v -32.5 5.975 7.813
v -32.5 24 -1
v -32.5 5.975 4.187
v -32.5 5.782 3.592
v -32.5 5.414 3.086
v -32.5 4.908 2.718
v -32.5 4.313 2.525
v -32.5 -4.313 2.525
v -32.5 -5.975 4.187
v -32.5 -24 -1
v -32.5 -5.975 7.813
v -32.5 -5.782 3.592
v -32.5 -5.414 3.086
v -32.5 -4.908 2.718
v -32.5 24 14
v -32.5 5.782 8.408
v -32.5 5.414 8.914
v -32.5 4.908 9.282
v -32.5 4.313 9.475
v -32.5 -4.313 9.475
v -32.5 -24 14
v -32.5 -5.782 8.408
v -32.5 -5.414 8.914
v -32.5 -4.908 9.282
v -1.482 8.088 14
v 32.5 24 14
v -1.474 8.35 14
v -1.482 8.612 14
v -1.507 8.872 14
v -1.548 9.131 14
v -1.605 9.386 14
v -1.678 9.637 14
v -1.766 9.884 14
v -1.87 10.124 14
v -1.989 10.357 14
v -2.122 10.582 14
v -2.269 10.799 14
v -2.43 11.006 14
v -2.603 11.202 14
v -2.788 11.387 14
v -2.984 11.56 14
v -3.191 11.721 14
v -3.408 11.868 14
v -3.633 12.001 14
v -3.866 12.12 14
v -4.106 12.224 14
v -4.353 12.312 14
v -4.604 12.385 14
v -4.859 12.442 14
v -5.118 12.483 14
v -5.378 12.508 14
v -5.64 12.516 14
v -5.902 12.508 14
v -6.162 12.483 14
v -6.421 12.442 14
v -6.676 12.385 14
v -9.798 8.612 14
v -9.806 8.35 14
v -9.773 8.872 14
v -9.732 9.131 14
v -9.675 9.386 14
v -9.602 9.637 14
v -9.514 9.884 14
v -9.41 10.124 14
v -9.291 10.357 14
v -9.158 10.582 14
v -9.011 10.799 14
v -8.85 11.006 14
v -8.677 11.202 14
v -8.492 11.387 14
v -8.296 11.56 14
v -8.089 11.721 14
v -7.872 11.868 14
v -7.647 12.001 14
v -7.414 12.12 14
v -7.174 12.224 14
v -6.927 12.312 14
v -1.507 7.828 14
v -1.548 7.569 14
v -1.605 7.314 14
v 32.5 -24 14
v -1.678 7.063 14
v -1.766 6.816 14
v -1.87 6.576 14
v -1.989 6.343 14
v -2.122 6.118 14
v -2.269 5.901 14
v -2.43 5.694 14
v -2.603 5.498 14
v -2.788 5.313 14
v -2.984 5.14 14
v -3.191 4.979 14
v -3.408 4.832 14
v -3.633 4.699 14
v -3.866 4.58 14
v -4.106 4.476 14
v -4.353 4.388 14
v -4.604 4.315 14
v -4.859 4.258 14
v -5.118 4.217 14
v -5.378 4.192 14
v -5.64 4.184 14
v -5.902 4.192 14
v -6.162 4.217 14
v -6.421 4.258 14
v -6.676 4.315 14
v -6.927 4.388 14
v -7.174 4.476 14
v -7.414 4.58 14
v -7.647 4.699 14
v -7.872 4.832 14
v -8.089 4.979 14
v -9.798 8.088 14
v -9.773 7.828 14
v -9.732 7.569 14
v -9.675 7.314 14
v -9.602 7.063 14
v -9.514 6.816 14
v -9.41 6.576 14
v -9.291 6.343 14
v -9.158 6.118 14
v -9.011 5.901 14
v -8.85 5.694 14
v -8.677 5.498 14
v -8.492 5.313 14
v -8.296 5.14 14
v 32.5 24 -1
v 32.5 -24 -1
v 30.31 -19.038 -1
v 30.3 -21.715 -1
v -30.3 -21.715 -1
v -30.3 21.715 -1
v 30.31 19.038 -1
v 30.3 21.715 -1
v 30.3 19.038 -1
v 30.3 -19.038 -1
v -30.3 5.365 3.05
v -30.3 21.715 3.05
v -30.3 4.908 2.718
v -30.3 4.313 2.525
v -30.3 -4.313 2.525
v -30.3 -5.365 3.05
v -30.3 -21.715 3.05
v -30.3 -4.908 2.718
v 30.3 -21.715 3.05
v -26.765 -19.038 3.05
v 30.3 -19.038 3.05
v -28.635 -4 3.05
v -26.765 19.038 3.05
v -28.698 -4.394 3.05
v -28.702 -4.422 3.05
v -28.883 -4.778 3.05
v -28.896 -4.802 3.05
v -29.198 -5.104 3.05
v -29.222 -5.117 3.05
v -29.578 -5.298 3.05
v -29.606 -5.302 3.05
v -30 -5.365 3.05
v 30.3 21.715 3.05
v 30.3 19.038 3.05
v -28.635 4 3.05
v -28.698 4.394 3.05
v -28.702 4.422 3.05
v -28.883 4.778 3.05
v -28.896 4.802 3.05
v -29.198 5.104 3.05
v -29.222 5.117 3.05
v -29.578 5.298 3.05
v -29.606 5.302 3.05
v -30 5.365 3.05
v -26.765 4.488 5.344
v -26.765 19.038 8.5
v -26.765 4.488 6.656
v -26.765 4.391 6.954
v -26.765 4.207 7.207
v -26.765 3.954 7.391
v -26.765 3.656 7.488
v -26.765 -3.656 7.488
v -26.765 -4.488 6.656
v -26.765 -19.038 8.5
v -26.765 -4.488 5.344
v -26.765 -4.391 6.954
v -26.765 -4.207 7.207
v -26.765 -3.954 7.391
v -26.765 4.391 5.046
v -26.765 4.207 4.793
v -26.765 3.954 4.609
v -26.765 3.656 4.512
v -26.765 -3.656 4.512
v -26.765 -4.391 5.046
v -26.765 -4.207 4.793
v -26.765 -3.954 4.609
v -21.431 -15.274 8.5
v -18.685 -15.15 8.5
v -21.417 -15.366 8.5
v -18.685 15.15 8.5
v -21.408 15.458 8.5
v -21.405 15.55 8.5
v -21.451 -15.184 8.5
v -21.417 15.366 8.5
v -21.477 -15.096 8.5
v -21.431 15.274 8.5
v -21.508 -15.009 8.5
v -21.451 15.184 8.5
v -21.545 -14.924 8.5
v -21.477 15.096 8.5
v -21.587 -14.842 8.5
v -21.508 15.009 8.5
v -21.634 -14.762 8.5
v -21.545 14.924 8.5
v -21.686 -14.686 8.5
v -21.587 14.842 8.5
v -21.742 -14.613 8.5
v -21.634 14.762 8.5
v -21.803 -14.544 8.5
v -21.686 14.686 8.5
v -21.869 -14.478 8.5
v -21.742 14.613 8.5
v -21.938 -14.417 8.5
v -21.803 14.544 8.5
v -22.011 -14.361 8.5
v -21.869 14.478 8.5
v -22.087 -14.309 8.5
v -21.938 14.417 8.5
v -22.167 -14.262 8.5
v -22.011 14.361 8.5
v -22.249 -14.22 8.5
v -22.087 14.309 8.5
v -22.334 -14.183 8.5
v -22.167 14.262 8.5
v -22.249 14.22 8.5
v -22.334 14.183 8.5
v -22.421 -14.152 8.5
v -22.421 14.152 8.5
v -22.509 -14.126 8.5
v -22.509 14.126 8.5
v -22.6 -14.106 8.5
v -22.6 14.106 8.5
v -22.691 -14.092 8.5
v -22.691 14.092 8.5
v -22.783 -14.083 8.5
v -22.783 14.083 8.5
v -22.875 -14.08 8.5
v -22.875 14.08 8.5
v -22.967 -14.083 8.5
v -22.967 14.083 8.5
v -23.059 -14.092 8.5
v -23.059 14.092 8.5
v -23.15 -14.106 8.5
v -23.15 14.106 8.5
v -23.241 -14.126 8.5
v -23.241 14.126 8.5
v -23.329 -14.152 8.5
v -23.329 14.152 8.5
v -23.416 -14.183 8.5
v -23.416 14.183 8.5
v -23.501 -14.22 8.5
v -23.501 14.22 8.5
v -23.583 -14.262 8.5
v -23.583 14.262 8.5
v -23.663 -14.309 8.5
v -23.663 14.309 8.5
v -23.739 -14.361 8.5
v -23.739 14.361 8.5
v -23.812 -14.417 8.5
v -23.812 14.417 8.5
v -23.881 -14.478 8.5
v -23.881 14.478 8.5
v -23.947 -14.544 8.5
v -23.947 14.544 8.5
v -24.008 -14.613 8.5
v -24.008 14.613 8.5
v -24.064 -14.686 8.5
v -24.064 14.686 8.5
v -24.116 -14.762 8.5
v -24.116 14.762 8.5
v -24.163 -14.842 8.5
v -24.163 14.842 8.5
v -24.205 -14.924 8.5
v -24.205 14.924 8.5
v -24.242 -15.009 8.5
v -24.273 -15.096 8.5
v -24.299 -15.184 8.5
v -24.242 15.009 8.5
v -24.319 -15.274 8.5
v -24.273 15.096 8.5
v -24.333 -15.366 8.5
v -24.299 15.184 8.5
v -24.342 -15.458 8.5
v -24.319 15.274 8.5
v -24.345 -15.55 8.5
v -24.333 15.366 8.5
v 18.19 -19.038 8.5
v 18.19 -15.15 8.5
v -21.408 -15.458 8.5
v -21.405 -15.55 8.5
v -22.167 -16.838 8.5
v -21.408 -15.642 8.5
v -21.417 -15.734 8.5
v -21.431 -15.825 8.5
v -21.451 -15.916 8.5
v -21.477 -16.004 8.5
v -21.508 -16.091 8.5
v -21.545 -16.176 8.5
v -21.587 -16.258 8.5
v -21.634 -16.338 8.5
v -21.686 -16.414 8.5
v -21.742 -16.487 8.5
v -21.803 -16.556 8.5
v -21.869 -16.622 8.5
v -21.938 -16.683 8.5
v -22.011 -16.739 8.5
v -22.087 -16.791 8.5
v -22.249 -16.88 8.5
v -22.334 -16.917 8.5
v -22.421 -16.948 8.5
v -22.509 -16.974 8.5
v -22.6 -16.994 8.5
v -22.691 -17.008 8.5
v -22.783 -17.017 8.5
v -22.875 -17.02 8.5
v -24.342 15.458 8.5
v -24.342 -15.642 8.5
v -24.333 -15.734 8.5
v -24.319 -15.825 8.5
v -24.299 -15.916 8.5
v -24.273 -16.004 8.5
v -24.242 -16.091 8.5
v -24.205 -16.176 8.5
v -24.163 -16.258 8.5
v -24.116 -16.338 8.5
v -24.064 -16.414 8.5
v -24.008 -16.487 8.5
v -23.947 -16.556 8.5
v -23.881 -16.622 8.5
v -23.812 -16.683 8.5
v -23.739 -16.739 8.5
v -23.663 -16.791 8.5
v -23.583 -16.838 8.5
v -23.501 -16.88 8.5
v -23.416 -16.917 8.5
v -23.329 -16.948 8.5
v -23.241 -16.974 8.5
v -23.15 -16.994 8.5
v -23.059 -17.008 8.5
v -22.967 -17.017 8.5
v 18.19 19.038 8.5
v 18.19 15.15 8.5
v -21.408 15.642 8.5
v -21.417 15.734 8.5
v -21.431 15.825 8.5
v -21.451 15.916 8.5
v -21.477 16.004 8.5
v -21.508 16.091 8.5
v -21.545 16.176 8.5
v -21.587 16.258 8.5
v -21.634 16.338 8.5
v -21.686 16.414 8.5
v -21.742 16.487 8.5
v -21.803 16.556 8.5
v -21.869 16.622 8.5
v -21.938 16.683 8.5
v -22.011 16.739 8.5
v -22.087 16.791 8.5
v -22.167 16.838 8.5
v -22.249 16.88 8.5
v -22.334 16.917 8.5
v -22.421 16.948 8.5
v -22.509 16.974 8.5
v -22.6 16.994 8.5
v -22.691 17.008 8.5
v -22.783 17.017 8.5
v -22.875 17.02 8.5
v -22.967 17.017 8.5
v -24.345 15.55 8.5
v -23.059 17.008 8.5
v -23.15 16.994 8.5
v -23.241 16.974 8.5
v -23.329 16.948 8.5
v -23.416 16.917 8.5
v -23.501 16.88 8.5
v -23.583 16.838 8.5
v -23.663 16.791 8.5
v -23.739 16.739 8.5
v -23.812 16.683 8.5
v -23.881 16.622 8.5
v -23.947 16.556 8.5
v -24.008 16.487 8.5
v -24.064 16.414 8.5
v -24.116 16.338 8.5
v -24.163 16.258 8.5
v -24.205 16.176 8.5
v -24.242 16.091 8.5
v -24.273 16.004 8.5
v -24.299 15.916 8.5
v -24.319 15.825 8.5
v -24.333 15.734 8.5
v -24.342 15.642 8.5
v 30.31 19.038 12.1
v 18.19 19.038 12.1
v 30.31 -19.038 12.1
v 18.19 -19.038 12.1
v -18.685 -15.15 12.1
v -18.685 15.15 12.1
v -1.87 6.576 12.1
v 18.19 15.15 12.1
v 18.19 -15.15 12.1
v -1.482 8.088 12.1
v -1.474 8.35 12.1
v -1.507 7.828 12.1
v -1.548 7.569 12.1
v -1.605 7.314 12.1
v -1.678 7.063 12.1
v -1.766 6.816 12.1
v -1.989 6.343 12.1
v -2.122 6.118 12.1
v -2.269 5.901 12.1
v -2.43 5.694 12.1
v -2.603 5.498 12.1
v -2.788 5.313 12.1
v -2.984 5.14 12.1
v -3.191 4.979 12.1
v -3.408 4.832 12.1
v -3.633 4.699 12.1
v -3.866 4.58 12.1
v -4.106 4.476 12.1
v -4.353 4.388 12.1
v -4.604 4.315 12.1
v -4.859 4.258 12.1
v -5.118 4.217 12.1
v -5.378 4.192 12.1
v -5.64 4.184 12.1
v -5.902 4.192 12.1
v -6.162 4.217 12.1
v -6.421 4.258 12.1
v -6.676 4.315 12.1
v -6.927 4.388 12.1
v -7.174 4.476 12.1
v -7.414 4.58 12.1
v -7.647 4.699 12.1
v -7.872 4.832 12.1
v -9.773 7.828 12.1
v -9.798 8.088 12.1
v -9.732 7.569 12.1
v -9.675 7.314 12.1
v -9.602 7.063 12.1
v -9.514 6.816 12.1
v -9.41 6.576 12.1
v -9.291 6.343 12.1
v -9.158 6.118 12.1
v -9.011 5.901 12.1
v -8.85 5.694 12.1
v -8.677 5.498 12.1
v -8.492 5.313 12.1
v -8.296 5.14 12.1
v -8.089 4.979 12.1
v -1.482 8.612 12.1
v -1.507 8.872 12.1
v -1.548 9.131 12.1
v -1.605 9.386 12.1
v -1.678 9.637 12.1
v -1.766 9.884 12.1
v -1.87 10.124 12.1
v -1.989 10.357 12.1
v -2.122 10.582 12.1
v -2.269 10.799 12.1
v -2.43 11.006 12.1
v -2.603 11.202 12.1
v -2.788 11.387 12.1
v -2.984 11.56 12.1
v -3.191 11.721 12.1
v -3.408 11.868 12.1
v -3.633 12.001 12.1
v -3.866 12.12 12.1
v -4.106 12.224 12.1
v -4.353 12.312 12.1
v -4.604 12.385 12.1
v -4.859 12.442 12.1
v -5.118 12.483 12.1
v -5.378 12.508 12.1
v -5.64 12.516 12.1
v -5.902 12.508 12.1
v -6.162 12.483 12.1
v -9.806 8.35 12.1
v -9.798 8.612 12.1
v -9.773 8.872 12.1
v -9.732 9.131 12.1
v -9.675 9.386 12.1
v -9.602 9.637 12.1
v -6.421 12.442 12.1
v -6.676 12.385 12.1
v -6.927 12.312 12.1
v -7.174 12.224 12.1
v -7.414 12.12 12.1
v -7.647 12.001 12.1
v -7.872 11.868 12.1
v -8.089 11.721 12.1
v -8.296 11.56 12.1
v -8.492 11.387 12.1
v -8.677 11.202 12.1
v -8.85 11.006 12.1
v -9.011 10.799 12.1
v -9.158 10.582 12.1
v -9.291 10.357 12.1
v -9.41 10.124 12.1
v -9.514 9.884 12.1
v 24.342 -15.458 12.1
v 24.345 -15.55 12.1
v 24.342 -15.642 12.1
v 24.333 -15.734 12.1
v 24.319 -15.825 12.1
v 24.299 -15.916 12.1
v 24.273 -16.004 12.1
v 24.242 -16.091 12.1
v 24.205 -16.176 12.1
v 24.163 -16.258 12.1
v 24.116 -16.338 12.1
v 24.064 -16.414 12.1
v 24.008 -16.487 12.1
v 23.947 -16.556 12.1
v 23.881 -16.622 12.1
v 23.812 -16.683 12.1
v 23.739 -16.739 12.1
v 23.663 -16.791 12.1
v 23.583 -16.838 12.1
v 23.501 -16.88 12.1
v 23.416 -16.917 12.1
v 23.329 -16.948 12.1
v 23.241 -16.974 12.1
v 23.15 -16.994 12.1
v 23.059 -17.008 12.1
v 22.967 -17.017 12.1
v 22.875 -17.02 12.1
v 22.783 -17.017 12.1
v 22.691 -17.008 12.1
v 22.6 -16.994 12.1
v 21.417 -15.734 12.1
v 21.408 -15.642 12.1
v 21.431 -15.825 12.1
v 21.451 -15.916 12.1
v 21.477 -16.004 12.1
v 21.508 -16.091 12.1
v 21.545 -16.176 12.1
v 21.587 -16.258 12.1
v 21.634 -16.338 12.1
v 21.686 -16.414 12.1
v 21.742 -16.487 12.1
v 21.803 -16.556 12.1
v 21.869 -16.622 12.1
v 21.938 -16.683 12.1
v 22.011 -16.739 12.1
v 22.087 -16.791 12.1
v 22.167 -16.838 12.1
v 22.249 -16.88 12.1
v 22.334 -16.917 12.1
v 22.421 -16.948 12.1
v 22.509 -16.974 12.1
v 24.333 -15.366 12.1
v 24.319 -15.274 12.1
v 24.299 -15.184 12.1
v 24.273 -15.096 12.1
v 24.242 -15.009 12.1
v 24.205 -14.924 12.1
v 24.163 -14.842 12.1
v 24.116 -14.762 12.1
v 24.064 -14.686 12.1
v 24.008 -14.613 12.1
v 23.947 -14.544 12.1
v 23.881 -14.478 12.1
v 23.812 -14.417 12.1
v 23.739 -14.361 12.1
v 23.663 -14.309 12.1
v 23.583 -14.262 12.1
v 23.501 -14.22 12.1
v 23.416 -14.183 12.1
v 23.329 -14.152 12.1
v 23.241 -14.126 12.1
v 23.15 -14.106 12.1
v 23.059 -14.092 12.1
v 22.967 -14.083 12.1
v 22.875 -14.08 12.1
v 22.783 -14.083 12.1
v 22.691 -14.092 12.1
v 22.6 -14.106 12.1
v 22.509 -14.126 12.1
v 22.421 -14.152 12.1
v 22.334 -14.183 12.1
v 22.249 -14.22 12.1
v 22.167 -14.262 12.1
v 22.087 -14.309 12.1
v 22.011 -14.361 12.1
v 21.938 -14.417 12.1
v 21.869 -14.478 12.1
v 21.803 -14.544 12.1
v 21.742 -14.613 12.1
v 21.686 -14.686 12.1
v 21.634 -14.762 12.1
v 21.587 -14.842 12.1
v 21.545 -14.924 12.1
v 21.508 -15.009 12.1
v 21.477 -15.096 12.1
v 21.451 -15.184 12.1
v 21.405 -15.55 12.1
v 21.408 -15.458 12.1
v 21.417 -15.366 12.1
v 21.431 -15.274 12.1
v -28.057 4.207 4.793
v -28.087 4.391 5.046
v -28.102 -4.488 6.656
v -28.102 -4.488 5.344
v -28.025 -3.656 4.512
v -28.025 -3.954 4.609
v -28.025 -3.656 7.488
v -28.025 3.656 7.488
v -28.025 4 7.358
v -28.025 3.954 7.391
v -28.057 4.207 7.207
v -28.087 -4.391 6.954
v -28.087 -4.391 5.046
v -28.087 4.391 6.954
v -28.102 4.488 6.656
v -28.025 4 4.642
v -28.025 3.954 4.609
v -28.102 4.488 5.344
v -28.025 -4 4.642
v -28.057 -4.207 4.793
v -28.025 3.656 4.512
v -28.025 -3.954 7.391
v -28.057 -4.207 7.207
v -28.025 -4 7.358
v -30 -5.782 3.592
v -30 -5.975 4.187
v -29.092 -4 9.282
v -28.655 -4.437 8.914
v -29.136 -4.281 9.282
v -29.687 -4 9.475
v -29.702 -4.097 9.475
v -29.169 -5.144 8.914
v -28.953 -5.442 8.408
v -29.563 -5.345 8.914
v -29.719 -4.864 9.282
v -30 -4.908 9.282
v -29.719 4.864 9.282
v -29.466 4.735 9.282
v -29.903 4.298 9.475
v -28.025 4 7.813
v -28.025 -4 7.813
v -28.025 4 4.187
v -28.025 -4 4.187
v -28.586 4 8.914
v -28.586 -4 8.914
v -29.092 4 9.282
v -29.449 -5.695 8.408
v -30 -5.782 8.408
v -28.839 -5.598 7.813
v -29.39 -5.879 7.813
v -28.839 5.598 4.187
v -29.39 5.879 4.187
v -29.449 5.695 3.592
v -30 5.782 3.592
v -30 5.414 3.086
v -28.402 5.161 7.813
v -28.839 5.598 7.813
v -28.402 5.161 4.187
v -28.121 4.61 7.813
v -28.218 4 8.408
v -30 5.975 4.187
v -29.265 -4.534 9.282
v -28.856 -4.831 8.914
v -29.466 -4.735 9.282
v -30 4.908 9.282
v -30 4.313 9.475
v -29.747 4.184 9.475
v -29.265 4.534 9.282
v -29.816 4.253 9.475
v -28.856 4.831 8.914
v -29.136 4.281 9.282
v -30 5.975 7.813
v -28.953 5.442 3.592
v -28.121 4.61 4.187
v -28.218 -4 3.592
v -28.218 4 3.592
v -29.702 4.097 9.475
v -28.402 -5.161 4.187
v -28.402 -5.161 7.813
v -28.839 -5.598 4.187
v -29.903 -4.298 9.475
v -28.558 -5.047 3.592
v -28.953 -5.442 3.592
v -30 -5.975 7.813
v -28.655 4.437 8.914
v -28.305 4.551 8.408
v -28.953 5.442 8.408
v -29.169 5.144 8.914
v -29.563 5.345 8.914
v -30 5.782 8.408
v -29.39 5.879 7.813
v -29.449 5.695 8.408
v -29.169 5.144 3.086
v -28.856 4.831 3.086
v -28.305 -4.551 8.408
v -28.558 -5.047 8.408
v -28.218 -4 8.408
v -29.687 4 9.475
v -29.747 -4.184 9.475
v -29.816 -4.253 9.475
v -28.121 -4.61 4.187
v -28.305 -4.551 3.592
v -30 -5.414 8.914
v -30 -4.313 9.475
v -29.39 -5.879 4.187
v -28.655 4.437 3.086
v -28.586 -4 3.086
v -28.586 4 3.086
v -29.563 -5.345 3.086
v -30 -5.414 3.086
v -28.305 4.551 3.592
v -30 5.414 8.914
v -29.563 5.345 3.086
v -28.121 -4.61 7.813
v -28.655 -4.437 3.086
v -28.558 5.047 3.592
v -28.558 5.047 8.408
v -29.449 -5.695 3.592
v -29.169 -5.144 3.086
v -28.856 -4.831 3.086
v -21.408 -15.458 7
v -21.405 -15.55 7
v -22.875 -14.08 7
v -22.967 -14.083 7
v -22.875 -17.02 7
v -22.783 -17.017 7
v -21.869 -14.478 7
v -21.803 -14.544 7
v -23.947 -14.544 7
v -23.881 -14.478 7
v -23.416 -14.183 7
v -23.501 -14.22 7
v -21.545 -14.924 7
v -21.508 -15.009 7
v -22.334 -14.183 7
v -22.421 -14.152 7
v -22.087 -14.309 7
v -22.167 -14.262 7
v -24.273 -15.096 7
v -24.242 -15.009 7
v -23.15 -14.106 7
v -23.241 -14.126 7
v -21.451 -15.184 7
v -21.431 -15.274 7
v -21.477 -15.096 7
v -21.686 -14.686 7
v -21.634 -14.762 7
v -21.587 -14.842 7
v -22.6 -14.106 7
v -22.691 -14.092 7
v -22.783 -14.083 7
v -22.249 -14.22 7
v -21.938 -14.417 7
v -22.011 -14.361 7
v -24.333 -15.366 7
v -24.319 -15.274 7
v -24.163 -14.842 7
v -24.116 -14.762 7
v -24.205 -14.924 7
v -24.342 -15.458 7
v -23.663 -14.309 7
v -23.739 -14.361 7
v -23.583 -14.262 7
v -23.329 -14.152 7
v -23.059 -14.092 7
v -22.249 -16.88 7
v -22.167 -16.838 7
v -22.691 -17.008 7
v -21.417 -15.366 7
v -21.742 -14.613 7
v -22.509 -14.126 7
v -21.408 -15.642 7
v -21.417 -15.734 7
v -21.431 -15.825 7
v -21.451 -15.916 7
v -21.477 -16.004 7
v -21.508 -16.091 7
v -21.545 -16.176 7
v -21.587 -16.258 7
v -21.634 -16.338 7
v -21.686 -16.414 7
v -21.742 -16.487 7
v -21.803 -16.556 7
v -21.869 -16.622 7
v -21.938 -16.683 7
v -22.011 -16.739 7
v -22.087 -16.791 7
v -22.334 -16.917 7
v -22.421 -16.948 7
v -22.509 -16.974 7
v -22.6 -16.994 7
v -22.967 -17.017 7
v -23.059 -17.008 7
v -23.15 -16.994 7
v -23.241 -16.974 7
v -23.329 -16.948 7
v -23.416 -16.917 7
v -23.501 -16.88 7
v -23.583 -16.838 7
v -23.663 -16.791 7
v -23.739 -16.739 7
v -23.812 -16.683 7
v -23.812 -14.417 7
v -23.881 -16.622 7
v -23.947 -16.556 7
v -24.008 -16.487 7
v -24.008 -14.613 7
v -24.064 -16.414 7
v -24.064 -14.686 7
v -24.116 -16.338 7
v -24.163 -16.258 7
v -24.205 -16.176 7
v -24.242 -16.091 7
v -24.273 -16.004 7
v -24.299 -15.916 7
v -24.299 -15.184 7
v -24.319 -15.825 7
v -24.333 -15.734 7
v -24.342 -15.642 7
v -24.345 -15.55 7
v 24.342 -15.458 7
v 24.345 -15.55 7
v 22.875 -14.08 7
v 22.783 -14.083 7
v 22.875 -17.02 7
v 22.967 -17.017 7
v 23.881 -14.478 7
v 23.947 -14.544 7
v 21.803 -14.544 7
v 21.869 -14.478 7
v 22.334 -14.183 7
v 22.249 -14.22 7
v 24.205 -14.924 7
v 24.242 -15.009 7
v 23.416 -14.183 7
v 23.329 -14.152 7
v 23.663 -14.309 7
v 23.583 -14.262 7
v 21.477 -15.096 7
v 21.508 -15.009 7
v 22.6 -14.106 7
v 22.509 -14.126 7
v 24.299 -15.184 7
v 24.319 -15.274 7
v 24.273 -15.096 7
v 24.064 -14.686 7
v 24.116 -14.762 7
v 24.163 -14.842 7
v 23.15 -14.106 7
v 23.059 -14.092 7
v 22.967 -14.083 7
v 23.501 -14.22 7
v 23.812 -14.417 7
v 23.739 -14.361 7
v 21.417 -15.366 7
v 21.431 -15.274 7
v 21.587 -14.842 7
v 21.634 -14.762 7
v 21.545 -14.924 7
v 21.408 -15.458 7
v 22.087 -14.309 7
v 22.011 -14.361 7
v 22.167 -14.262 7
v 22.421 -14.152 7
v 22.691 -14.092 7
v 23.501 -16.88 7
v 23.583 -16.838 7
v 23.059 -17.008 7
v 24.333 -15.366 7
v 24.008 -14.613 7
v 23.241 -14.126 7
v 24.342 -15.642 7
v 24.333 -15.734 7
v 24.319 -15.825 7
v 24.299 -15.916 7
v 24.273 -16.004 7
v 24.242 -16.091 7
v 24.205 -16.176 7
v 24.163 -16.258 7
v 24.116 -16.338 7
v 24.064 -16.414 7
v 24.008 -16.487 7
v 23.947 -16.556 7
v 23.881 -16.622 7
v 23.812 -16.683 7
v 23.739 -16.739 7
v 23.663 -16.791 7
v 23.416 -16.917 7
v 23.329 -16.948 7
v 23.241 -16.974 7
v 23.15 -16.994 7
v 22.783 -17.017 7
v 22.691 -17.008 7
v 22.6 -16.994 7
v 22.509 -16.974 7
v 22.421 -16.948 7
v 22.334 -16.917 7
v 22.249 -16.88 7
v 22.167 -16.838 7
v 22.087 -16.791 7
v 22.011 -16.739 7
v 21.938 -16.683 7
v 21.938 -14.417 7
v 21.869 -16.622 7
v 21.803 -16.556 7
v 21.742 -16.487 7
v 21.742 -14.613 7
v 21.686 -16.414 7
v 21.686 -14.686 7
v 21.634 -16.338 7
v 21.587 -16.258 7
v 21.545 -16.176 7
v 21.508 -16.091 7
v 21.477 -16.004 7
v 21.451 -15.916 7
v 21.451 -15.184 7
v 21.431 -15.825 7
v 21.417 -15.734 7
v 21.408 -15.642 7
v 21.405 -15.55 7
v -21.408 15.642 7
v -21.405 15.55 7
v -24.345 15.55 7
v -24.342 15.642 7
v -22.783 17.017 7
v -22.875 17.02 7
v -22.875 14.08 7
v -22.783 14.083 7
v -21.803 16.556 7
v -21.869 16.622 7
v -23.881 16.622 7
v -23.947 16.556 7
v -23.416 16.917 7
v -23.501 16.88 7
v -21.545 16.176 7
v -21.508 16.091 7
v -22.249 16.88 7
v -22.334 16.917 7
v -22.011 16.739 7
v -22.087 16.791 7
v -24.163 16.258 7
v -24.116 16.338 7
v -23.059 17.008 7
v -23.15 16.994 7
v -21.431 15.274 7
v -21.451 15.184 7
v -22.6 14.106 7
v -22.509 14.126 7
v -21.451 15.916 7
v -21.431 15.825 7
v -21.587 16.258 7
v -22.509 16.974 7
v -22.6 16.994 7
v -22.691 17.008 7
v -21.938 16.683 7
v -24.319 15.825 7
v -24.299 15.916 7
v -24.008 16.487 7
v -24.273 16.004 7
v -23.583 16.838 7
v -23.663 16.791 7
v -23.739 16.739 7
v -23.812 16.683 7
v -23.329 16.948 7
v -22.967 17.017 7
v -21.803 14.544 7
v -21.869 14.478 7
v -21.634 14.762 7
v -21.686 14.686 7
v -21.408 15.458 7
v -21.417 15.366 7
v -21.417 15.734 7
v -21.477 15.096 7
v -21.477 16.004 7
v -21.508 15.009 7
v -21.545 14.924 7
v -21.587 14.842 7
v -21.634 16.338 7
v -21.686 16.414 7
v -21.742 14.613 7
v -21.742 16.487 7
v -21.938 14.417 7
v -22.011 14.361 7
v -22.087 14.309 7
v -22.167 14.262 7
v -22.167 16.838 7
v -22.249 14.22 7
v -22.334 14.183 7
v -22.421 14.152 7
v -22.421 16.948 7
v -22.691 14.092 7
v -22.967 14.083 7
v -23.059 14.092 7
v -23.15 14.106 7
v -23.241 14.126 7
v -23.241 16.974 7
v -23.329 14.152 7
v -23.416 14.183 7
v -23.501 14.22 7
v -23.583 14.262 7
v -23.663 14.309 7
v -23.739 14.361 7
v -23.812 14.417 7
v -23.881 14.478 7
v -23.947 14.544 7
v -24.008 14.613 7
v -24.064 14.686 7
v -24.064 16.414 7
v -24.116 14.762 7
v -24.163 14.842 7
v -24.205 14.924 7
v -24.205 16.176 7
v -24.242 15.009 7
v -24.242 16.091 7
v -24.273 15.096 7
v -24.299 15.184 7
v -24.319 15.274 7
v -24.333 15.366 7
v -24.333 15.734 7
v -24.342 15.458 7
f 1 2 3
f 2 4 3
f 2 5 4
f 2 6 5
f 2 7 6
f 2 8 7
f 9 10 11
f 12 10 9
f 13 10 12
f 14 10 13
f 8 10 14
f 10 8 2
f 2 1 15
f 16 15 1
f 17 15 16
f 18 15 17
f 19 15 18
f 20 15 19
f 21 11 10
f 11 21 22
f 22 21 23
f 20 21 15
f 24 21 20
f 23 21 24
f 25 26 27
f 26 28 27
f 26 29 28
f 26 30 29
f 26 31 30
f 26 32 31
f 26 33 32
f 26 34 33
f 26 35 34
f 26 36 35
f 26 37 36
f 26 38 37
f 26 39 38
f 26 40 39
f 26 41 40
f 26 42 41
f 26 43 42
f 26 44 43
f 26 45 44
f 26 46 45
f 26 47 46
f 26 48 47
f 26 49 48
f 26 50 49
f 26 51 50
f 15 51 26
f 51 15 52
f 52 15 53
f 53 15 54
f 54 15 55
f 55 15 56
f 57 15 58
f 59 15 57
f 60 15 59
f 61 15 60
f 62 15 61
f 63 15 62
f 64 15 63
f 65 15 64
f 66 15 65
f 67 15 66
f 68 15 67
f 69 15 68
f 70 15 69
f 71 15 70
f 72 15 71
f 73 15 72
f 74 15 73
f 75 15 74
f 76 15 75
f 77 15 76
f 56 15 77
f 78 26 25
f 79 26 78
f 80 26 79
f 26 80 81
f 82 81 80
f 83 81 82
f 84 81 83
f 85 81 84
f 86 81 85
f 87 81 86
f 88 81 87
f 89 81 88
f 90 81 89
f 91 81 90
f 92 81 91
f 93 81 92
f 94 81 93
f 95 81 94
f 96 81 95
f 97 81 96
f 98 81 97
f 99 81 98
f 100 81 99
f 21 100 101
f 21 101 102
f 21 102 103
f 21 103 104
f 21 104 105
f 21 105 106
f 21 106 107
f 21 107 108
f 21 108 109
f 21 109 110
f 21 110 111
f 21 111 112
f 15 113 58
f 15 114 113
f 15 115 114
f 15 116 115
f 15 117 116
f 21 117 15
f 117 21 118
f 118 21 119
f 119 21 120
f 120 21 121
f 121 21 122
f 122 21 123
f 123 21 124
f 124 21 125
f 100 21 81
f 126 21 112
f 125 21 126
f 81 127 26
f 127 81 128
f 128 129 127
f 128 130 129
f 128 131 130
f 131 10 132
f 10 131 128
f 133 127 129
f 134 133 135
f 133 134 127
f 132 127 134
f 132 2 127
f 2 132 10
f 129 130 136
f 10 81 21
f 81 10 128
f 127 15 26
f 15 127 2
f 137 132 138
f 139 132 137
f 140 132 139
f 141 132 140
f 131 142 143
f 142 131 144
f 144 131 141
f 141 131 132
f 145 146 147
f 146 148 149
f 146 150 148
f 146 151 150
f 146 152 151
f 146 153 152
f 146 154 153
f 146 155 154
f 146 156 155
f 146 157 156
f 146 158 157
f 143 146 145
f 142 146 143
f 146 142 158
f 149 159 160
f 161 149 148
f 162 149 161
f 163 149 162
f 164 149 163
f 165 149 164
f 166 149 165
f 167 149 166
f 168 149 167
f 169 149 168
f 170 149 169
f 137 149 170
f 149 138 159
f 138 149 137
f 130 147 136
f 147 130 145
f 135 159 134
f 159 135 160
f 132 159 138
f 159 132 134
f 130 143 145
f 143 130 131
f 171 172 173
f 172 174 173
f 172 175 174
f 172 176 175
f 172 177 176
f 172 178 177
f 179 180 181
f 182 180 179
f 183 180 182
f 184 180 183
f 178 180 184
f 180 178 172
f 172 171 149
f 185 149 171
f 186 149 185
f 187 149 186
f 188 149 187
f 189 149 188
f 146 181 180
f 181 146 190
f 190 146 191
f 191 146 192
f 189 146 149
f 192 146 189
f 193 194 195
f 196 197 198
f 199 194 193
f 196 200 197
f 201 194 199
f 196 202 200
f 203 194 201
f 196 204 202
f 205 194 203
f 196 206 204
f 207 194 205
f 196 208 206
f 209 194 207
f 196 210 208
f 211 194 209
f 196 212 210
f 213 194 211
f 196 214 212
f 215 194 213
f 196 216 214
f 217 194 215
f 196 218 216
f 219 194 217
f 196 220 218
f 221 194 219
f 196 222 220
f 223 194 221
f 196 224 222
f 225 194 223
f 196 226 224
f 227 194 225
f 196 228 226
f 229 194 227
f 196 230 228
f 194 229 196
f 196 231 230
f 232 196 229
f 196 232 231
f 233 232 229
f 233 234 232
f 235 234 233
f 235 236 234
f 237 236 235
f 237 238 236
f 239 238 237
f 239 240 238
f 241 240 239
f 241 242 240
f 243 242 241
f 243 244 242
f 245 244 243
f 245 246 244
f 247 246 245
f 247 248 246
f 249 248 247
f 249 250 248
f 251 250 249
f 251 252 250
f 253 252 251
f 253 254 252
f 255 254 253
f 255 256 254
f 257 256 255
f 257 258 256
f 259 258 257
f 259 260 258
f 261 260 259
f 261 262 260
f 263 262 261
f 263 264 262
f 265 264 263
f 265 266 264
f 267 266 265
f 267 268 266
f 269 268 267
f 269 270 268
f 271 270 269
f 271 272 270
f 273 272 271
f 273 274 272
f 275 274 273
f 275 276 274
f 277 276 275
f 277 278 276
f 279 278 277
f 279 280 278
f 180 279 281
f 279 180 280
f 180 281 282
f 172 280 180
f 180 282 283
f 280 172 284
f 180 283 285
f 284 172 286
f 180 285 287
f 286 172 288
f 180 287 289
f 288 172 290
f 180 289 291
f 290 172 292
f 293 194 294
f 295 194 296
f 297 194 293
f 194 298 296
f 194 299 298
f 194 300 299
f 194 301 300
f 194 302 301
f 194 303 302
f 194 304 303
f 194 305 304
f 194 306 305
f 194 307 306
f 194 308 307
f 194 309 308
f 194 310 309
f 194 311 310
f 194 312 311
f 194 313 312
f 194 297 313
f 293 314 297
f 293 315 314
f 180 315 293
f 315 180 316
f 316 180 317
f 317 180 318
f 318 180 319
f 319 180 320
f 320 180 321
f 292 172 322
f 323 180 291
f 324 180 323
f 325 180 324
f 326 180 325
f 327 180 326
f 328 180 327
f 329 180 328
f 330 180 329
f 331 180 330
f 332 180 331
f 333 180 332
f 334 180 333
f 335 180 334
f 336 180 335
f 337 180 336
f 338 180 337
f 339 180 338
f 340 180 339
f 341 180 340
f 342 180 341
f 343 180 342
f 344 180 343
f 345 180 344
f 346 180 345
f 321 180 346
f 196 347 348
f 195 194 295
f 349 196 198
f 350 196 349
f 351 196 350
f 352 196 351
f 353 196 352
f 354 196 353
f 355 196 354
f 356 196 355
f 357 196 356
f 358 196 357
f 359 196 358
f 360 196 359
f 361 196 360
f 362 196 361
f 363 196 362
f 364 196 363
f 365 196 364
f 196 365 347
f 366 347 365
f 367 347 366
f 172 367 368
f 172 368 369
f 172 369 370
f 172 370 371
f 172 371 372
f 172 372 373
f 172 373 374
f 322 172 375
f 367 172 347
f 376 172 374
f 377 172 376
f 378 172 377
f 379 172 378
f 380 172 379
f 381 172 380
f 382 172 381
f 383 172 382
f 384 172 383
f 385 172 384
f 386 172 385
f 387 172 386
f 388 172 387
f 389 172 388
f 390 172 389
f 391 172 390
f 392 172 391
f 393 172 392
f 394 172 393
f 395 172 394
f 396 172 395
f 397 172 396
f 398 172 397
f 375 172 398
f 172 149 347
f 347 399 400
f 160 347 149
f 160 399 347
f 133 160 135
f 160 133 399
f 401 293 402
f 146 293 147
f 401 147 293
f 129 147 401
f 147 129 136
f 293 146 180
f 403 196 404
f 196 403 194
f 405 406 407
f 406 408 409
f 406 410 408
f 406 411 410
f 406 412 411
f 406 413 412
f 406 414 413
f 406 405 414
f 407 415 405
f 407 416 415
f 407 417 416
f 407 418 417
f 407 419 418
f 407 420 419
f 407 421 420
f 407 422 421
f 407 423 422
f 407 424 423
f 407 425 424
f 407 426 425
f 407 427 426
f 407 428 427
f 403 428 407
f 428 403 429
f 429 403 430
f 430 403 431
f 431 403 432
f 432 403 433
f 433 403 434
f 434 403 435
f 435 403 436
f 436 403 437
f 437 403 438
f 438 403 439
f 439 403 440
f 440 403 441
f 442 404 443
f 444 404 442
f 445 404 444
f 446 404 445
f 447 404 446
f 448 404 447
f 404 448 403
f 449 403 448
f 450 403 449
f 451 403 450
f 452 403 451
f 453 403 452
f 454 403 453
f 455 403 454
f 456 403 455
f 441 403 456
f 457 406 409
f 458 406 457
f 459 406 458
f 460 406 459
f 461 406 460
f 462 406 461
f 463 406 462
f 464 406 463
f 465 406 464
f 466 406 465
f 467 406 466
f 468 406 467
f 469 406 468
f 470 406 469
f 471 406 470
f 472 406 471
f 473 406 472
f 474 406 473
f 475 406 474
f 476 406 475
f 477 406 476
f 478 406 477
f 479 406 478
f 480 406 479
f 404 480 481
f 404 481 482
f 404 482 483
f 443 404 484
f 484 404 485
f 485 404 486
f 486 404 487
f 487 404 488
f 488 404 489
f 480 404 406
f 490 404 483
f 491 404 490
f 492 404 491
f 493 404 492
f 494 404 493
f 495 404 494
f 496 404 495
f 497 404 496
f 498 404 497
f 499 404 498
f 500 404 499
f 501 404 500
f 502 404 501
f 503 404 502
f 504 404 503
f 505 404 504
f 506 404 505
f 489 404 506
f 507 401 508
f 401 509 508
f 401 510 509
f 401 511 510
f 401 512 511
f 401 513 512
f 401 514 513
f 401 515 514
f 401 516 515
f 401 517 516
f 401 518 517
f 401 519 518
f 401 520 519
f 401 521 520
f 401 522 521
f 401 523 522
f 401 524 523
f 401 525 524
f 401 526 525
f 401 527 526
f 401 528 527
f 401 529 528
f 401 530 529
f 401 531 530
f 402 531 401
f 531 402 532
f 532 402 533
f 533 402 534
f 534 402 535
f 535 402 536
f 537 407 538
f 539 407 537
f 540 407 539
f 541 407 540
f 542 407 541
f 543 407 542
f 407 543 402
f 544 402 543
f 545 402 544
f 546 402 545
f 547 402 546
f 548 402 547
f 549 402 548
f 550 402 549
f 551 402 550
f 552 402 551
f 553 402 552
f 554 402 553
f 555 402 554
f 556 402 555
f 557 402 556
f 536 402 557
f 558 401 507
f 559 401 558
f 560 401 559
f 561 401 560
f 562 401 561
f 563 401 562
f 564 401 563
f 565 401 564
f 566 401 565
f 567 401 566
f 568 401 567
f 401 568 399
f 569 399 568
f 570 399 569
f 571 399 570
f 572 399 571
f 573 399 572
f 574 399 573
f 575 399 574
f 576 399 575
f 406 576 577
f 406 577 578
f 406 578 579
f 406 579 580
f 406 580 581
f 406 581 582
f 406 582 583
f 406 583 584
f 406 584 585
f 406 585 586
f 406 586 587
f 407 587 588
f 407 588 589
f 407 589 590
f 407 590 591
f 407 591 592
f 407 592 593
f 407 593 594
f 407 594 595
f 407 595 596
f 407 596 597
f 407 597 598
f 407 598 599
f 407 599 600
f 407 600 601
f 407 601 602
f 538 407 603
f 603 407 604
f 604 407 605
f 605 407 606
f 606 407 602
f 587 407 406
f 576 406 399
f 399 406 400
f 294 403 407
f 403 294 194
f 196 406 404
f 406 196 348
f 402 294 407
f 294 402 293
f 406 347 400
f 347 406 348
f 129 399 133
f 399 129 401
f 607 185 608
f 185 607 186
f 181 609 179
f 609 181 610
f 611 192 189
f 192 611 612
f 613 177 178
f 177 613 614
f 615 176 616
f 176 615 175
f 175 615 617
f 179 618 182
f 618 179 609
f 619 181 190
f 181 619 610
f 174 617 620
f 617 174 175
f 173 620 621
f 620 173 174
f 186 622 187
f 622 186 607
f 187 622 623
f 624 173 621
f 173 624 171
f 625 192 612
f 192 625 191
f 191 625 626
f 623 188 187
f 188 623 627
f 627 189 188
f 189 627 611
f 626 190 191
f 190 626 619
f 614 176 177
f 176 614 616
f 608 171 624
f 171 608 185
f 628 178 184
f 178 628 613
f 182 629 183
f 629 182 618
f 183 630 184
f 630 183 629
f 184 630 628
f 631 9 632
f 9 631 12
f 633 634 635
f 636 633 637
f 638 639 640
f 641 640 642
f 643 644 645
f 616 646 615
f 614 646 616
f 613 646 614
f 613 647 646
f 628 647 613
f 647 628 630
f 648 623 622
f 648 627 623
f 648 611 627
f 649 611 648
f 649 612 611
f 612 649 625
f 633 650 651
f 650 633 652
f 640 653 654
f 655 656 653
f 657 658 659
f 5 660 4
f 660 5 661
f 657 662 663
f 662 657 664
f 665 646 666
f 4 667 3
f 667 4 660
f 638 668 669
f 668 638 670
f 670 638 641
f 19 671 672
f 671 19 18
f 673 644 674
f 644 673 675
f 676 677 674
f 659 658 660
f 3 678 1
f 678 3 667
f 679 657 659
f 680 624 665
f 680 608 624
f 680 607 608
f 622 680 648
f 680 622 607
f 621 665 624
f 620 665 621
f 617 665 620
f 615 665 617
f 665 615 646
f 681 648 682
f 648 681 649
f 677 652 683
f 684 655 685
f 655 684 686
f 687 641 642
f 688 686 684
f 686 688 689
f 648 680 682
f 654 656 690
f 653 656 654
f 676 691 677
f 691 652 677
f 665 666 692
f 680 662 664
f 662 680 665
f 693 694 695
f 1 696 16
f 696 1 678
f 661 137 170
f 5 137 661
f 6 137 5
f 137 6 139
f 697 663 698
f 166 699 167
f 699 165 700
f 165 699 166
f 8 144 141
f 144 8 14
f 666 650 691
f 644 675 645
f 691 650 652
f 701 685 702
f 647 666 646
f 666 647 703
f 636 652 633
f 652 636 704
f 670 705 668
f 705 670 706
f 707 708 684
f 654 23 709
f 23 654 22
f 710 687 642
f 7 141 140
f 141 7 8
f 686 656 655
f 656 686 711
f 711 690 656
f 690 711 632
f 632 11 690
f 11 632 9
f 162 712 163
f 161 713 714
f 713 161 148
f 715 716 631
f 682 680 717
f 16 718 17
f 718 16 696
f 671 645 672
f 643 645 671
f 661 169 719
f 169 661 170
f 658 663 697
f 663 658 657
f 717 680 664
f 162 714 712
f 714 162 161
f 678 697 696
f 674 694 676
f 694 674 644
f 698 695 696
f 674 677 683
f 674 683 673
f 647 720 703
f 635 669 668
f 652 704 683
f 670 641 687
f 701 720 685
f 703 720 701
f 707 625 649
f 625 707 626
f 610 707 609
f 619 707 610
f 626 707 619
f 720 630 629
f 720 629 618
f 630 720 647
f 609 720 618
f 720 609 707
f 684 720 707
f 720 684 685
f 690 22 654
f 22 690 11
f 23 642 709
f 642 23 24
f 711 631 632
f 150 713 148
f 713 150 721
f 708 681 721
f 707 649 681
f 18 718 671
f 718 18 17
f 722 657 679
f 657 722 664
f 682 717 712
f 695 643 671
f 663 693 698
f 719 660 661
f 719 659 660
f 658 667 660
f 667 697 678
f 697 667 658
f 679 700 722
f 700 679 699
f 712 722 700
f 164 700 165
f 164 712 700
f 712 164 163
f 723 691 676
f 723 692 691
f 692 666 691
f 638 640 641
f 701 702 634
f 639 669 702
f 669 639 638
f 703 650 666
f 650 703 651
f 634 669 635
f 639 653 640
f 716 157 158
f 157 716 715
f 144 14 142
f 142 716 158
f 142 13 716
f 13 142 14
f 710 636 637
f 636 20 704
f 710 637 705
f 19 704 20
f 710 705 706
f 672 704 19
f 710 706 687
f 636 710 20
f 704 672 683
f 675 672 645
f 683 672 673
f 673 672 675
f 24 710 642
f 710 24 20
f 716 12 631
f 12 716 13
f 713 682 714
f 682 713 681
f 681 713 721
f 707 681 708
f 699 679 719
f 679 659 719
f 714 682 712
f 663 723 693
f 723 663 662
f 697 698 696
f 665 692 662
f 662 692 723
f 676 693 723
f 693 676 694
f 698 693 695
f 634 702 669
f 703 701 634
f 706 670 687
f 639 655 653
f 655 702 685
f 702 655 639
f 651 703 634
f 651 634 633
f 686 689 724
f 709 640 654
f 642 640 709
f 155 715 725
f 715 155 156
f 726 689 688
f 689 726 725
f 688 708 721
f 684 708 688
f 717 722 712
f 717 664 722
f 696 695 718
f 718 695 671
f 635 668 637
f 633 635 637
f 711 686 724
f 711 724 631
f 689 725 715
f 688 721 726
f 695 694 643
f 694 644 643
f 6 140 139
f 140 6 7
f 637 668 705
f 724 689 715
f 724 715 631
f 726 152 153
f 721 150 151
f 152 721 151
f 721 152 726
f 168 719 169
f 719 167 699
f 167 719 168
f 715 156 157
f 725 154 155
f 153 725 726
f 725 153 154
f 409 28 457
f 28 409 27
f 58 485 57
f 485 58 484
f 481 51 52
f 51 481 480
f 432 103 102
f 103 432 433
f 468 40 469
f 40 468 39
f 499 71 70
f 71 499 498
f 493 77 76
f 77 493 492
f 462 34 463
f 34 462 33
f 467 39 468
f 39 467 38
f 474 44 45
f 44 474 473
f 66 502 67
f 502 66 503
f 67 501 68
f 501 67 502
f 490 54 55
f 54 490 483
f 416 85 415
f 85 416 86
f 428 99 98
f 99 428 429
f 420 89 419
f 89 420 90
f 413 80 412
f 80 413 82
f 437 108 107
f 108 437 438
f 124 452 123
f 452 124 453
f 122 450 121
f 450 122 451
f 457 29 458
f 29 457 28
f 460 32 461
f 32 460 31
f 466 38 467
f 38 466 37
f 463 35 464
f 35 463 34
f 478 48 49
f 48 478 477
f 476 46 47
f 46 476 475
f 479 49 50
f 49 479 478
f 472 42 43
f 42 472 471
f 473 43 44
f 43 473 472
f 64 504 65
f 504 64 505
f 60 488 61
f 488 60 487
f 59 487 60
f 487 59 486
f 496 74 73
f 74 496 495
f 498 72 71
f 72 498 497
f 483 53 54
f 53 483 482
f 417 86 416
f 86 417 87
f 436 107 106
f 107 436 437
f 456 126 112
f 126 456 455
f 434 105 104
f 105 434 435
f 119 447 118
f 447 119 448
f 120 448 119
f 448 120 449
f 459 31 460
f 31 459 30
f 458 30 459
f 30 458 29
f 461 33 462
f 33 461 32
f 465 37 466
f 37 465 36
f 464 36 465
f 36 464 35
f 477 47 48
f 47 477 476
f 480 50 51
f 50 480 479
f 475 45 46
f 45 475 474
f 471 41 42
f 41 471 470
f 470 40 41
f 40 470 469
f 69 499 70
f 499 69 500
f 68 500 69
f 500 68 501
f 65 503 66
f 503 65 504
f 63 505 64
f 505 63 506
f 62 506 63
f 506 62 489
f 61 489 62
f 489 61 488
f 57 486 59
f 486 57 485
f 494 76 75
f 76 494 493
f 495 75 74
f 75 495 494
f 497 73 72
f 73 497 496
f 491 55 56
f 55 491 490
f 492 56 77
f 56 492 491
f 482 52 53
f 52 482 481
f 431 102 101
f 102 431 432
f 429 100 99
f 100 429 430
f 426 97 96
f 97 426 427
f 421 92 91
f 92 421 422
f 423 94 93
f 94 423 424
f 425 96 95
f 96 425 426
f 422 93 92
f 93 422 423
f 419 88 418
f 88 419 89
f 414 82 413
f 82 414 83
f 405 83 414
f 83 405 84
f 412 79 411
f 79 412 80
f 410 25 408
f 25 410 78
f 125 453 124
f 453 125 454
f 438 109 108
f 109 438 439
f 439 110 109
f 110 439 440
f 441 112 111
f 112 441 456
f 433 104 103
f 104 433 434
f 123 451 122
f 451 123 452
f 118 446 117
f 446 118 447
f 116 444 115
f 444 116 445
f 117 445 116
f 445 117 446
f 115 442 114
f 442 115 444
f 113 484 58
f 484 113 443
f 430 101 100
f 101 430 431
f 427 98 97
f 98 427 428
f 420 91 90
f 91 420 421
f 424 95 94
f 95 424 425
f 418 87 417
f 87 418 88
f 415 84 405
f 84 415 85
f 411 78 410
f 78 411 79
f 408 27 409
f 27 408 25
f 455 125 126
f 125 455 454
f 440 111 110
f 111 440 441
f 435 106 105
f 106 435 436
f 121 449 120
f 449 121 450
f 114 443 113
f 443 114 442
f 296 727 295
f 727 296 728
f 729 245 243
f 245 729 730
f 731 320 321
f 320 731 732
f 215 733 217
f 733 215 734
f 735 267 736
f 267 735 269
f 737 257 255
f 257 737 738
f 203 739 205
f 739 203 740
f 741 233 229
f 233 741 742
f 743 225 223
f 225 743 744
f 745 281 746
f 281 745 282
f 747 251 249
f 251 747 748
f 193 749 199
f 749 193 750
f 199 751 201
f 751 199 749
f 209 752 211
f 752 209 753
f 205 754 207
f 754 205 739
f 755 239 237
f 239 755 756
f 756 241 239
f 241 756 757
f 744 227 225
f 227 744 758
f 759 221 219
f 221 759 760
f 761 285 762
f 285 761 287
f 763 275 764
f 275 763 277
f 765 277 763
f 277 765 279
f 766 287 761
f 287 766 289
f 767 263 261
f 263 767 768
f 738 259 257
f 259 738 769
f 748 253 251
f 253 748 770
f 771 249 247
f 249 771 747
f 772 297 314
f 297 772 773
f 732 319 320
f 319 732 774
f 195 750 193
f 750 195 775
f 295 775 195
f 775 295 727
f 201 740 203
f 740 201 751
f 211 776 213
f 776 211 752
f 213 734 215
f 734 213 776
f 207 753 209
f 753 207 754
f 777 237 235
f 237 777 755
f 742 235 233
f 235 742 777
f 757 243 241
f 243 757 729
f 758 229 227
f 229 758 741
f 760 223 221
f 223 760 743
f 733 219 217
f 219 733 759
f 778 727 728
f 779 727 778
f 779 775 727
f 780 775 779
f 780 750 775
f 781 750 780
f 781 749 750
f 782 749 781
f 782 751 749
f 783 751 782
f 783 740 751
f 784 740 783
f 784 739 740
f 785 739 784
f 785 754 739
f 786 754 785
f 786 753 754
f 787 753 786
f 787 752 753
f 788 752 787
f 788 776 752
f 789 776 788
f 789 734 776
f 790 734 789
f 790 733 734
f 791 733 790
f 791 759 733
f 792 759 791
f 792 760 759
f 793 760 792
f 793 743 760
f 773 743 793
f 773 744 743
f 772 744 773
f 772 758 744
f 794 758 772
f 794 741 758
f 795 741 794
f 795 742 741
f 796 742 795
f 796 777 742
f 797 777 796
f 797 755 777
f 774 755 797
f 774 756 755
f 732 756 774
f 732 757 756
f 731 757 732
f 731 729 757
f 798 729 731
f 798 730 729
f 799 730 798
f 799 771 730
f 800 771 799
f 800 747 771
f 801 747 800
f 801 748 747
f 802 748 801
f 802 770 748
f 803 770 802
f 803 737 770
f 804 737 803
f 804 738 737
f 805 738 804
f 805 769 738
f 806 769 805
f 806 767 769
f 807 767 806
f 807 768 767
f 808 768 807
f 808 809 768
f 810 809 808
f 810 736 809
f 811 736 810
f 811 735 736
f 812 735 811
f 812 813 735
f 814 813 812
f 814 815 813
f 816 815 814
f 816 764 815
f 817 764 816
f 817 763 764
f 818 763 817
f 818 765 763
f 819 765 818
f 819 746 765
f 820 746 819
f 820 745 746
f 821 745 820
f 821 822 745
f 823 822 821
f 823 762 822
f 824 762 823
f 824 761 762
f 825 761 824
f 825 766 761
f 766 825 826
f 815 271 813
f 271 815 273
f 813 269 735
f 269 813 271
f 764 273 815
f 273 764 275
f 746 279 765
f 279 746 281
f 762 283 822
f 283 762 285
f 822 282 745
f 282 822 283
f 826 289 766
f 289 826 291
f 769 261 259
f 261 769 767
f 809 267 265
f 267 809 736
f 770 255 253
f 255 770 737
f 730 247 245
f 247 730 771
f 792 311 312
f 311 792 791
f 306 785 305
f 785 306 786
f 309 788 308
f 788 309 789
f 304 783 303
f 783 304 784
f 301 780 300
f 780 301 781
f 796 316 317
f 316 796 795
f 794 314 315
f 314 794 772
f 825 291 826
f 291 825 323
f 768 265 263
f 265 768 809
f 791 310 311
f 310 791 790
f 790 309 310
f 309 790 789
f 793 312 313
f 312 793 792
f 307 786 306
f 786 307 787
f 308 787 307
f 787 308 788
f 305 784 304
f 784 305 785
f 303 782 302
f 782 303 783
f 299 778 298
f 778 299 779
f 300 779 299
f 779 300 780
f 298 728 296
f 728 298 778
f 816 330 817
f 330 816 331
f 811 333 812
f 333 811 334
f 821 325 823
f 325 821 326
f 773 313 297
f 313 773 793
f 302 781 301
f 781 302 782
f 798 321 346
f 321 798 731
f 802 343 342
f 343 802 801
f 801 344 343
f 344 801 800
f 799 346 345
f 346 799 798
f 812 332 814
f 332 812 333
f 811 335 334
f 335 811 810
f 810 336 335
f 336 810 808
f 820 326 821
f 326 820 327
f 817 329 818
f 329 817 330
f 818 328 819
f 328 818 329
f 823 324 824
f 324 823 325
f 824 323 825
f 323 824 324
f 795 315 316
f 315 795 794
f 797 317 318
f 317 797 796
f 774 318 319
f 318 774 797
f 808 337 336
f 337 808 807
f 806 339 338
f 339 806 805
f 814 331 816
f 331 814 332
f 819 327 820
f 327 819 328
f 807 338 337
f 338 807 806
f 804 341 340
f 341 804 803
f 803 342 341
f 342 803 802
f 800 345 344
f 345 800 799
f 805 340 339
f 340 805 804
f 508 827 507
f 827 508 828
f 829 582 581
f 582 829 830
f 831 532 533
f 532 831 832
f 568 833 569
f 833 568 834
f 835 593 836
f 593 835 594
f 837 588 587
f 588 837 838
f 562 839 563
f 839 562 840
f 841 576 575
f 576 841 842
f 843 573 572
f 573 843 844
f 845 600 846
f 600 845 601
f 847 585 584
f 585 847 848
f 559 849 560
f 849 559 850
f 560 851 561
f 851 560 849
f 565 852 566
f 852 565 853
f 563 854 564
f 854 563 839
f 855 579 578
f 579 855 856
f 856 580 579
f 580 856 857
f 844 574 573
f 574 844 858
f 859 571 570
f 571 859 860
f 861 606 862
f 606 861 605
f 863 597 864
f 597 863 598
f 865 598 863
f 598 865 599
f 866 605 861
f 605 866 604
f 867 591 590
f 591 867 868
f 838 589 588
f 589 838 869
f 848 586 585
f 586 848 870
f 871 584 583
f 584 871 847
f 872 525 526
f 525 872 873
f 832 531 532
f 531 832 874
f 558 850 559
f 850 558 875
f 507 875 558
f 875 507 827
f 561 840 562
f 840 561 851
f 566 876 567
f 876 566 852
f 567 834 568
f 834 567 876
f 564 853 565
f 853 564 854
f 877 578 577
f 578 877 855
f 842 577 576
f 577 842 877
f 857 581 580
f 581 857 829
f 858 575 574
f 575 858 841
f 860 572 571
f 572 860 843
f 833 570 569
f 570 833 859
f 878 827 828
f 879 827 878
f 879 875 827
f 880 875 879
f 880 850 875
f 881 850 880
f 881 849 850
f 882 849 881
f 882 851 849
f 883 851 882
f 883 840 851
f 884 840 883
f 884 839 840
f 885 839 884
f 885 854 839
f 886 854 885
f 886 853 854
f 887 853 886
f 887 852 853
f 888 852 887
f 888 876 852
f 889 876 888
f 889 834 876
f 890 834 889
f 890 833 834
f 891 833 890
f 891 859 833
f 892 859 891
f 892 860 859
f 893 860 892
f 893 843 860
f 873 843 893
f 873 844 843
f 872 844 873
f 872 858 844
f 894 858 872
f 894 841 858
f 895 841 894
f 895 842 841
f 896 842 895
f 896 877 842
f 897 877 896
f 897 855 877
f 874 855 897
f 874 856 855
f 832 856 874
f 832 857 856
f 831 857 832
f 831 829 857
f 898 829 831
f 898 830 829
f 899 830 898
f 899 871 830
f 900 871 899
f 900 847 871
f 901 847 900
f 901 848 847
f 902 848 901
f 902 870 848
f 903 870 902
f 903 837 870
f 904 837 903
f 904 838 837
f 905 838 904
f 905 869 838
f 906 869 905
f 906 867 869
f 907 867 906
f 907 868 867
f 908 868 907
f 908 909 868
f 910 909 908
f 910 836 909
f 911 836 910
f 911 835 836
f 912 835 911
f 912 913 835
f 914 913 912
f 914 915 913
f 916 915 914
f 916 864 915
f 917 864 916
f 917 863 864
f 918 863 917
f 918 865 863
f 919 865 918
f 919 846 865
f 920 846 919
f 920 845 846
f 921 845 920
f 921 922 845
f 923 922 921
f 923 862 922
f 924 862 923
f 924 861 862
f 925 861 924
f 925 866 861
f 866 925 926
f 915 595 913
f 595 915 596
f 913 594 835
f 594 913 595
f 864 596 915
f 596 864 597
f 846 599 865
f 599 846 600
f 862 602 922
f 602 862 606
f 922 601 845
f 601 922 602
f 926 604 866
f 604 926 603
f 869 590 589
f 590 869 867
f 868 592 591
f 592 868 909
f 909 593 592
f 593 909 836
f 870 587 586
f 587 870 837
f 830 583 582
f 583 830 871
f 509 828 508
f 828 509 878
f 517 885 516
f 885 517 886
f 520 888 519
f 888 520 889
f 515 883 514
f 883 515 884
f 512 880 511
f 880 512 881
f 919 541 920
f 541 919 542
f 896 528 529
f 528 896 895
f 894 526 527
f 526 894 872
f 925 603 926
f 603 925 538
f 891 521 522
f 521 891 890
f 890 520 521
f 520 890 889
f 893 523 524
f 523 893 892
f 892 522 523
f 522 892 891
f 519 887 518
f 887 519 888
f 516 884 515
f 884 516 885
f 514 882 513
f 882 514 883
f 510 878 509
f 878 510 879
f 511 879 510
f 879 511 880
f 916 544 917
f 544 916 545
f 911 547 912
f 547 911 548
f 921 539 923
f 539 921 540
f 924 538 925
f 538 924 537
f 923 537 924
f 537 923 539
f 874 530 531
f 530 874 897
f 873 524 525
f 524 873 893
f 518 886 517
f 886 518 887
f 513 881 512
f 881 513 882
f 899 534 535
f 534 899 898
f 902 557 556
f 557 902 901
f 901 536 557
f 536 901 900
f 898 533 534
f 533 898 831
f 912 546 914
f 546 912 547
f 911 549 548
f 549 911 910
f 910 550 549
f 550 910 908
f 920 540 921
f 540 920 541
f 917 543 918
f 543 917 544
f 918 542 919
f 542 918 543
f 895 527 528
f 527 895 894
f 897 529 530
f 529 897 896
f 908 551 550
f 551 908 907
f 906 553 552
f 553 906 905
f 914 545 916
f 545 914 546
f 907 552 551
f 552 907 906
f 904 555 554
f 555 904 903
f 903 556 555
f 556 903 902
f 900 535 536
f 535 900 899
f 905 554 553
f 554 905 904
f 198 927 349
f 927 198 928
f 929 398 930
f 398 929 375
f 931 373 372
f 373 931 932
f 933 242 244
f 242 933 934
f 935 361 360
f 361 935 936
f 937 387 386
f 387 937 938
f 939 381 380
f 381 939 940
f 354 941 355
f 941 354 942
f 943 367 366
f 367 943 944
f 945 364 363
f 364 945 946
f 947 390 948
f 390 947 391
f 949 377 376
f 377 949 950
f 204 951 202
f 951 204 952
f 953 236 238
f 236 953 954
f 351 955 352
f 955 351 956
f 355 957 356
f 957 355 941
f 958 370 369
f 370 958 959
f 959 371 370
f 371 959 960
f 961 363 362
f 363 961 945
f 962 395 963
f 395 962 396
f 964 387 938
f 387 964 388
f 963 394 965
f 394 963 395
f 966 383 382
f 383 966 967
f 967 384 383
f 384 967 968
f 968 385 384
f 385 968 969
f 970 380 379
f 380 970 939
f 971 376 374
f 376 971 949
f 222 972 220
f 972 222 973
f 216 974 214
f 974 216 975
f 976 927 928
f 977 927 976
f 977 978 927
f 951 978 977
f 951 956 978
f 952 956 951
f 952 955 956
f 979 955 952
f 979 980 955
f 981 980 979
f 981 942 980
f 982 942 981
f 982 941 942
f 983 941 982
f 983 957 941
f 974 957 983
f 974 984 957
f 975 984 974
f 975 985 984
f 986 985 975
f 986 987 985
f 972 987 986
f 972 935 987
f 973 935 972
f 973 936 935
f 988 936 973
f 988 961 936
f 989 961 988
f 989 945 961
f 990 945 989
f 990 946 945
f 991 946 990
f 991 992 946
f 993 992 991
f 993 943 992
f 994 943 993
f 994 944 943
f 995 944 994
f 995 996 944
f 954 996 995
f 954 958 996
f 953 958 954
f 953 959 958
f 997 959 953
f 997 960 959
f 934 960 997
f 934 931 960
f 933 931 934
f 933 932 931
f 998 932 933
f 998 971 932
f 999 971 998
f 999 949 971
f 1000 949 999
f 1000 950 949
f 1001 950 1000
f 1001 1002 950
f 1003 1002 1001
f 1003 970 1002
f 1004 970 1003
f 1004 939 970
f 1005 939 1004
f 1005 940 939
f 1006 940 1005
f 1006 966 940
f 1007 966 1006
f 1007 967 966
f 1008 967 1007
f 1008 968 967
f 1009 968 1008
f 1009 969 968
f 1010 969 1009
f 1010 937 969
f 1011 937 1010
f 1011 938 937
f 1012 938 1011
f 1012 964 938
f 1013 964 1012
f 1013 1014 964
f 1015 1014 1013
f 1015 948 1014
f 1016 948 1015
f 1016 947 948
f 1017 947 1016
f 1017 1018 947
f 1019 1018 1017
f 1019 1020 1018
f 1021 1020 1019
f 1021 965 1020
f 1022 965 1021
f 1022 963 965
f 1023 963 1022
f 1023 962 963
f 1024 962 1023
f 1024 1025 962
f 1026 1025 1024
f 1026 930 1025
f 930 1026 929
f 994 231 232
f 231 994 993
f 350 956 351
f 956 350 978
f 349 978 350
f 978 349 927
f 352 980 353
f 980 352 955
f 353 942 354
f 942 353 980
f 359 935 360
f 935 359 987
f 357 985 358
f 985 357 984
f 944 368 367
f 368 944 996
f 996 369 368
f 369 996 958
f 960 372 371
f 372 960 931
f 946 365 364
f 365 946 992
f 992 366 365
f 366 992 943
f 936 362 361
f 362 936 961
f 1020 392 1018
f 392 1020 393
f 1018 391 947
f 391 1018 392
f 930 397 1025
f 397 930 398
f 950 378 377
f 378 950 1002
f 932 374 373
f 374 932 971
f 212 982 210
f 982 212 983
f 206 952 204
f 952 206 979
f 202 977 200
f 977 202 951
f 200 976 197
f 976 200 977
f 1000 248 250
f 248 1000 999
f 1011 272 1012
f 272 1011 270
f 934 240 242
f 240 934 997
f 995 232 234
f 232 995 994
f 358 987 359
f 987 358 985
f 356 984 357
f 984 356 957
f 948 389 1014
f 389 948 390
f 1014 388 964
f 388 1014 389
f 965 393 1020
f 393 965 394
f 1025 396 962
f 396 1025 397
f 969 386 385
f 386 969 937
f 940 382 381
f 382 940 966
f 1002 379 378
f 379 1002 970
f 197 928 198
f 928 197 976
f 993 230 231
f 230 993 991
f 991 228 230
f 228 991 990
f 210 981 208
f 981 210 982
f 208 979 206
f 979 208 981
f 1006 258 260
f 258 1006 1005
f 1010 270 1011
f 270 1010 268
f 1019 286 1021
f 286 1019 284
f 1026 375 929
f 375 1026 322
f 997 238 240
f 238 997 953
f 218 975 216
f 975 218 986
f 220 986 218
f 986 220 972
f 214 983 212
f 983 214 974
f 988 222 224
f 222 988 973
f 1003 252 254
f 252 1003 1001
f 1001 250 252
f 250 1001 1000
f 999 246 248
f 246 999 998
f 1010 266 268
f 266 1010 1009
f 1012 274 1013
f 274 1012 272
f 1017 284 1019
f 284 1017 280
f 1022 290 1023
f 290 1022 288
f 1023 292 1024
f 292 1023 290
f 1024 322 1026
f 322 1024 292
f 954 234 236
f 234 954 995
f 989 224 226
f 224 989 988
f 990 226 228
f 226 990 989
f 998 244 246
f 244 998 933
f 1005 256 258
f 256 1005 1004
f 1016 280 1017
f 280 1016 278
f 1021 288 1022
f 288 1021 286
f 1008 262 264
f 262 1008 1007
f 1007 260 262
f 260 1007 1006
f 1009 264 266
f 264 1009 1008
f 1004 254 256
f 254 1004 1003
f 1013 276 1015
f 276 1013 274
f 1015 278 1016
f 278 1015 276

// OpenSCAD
$fn=100;

// Group of 4 standoffs spaced by dx and dy
module standOffSquare(dx, dy, h, d){
  union(){
    translate([-dx/2,-dy/2,0]) cylinder(h=h, r=d/2);
    translate([ dx/2,-dy/2,0]) cylinder(h=h, r=d/2);
    translate([-dx/2, dy/2,0]) cylinder(h=h, r=d/2);
    // translate([ dx/2, dy/2,0]) cylinder(h=h, r=d/2);
  }
}

module display() {
    color("grey") translate([-60 / 2, -43 / 2, 0]) cube(size=[60, 43, 3]);
}

w_pcb = 53;
h_pcb = 37.7;
module pcb() {
    union() {
        difference() {
            color("green") cube(size=[w_pcb, h_pcb, 1], center=true);
            translate([0, 0, -2]) standOffSquare(45.75, 31.1, 5, 3);
        }
        translate([-w_pcb / 2 + 20.86, h_pcb / 2 - 10.5, 6.5 / 2 + 0.5]) cylinder(h=6.5, r=8.25 / 2, center=true);
        translate([7 / 2 - w_pcb / 2 - 1.5, 0, -3.2 / 2 - 1 / 2]) cube(size=[7, 9, 3.2], center=true);
    }
}


tolScale = 1.01;

module box(){
    // %display();
    // translate([0, 0, -1 / 2 + 8.4]) pcb();
    union() {
        difference() {
            translate([-65 / 2, -48 / 2, -1]) cube(size=[65, 48, 15]);
            translate([0, 0, -2]) scale(tolScale) cube(size=[60, 43, 10], center=true);
            translate([0, 0, -20 / 2 + 8.4]) scale(tolScale) cube(size=[w_pcb, h_pcb, 20], center=true);
            translate([0, 0, -20 / 2 + 12]) scale(tolScale) cube(size=[37, 30, 20], center=true);
            // Cutout
            translate([24.25, 0, -20 / 2 + 12]) scale(tolScale) cube(size=[12, h_pcb, 20], center=true);
            // USB
            translate([-35, 0, 6]) minkowski() {
                cube(size=[20, 9-2, 3-2], center=true);
                sphere(r=1, $fn=20);
            }
            translate([-38, 0, 6]) minkowski() {
                cube(size=[20 - 4, 12 - 4, 7 - 4], center=true);
                sphere(r=2, $fn=20);
            }
            // CAM
            translate([-w_pcb / 2 + 20.86, h_pcb / 2 - 10.5, 10]) scale(tolScale) cylinder(h=20, r=8.25 / 2, center=true);
        }
        translate([0, 0, 7]) standOffSquare(45.75, 31.1, 7, 3 * 0.98);
    }
}

intersection() {
    box();
    // translate([-50, 0, -50]) cube(size=[100, 100, 100], center=false);
}
